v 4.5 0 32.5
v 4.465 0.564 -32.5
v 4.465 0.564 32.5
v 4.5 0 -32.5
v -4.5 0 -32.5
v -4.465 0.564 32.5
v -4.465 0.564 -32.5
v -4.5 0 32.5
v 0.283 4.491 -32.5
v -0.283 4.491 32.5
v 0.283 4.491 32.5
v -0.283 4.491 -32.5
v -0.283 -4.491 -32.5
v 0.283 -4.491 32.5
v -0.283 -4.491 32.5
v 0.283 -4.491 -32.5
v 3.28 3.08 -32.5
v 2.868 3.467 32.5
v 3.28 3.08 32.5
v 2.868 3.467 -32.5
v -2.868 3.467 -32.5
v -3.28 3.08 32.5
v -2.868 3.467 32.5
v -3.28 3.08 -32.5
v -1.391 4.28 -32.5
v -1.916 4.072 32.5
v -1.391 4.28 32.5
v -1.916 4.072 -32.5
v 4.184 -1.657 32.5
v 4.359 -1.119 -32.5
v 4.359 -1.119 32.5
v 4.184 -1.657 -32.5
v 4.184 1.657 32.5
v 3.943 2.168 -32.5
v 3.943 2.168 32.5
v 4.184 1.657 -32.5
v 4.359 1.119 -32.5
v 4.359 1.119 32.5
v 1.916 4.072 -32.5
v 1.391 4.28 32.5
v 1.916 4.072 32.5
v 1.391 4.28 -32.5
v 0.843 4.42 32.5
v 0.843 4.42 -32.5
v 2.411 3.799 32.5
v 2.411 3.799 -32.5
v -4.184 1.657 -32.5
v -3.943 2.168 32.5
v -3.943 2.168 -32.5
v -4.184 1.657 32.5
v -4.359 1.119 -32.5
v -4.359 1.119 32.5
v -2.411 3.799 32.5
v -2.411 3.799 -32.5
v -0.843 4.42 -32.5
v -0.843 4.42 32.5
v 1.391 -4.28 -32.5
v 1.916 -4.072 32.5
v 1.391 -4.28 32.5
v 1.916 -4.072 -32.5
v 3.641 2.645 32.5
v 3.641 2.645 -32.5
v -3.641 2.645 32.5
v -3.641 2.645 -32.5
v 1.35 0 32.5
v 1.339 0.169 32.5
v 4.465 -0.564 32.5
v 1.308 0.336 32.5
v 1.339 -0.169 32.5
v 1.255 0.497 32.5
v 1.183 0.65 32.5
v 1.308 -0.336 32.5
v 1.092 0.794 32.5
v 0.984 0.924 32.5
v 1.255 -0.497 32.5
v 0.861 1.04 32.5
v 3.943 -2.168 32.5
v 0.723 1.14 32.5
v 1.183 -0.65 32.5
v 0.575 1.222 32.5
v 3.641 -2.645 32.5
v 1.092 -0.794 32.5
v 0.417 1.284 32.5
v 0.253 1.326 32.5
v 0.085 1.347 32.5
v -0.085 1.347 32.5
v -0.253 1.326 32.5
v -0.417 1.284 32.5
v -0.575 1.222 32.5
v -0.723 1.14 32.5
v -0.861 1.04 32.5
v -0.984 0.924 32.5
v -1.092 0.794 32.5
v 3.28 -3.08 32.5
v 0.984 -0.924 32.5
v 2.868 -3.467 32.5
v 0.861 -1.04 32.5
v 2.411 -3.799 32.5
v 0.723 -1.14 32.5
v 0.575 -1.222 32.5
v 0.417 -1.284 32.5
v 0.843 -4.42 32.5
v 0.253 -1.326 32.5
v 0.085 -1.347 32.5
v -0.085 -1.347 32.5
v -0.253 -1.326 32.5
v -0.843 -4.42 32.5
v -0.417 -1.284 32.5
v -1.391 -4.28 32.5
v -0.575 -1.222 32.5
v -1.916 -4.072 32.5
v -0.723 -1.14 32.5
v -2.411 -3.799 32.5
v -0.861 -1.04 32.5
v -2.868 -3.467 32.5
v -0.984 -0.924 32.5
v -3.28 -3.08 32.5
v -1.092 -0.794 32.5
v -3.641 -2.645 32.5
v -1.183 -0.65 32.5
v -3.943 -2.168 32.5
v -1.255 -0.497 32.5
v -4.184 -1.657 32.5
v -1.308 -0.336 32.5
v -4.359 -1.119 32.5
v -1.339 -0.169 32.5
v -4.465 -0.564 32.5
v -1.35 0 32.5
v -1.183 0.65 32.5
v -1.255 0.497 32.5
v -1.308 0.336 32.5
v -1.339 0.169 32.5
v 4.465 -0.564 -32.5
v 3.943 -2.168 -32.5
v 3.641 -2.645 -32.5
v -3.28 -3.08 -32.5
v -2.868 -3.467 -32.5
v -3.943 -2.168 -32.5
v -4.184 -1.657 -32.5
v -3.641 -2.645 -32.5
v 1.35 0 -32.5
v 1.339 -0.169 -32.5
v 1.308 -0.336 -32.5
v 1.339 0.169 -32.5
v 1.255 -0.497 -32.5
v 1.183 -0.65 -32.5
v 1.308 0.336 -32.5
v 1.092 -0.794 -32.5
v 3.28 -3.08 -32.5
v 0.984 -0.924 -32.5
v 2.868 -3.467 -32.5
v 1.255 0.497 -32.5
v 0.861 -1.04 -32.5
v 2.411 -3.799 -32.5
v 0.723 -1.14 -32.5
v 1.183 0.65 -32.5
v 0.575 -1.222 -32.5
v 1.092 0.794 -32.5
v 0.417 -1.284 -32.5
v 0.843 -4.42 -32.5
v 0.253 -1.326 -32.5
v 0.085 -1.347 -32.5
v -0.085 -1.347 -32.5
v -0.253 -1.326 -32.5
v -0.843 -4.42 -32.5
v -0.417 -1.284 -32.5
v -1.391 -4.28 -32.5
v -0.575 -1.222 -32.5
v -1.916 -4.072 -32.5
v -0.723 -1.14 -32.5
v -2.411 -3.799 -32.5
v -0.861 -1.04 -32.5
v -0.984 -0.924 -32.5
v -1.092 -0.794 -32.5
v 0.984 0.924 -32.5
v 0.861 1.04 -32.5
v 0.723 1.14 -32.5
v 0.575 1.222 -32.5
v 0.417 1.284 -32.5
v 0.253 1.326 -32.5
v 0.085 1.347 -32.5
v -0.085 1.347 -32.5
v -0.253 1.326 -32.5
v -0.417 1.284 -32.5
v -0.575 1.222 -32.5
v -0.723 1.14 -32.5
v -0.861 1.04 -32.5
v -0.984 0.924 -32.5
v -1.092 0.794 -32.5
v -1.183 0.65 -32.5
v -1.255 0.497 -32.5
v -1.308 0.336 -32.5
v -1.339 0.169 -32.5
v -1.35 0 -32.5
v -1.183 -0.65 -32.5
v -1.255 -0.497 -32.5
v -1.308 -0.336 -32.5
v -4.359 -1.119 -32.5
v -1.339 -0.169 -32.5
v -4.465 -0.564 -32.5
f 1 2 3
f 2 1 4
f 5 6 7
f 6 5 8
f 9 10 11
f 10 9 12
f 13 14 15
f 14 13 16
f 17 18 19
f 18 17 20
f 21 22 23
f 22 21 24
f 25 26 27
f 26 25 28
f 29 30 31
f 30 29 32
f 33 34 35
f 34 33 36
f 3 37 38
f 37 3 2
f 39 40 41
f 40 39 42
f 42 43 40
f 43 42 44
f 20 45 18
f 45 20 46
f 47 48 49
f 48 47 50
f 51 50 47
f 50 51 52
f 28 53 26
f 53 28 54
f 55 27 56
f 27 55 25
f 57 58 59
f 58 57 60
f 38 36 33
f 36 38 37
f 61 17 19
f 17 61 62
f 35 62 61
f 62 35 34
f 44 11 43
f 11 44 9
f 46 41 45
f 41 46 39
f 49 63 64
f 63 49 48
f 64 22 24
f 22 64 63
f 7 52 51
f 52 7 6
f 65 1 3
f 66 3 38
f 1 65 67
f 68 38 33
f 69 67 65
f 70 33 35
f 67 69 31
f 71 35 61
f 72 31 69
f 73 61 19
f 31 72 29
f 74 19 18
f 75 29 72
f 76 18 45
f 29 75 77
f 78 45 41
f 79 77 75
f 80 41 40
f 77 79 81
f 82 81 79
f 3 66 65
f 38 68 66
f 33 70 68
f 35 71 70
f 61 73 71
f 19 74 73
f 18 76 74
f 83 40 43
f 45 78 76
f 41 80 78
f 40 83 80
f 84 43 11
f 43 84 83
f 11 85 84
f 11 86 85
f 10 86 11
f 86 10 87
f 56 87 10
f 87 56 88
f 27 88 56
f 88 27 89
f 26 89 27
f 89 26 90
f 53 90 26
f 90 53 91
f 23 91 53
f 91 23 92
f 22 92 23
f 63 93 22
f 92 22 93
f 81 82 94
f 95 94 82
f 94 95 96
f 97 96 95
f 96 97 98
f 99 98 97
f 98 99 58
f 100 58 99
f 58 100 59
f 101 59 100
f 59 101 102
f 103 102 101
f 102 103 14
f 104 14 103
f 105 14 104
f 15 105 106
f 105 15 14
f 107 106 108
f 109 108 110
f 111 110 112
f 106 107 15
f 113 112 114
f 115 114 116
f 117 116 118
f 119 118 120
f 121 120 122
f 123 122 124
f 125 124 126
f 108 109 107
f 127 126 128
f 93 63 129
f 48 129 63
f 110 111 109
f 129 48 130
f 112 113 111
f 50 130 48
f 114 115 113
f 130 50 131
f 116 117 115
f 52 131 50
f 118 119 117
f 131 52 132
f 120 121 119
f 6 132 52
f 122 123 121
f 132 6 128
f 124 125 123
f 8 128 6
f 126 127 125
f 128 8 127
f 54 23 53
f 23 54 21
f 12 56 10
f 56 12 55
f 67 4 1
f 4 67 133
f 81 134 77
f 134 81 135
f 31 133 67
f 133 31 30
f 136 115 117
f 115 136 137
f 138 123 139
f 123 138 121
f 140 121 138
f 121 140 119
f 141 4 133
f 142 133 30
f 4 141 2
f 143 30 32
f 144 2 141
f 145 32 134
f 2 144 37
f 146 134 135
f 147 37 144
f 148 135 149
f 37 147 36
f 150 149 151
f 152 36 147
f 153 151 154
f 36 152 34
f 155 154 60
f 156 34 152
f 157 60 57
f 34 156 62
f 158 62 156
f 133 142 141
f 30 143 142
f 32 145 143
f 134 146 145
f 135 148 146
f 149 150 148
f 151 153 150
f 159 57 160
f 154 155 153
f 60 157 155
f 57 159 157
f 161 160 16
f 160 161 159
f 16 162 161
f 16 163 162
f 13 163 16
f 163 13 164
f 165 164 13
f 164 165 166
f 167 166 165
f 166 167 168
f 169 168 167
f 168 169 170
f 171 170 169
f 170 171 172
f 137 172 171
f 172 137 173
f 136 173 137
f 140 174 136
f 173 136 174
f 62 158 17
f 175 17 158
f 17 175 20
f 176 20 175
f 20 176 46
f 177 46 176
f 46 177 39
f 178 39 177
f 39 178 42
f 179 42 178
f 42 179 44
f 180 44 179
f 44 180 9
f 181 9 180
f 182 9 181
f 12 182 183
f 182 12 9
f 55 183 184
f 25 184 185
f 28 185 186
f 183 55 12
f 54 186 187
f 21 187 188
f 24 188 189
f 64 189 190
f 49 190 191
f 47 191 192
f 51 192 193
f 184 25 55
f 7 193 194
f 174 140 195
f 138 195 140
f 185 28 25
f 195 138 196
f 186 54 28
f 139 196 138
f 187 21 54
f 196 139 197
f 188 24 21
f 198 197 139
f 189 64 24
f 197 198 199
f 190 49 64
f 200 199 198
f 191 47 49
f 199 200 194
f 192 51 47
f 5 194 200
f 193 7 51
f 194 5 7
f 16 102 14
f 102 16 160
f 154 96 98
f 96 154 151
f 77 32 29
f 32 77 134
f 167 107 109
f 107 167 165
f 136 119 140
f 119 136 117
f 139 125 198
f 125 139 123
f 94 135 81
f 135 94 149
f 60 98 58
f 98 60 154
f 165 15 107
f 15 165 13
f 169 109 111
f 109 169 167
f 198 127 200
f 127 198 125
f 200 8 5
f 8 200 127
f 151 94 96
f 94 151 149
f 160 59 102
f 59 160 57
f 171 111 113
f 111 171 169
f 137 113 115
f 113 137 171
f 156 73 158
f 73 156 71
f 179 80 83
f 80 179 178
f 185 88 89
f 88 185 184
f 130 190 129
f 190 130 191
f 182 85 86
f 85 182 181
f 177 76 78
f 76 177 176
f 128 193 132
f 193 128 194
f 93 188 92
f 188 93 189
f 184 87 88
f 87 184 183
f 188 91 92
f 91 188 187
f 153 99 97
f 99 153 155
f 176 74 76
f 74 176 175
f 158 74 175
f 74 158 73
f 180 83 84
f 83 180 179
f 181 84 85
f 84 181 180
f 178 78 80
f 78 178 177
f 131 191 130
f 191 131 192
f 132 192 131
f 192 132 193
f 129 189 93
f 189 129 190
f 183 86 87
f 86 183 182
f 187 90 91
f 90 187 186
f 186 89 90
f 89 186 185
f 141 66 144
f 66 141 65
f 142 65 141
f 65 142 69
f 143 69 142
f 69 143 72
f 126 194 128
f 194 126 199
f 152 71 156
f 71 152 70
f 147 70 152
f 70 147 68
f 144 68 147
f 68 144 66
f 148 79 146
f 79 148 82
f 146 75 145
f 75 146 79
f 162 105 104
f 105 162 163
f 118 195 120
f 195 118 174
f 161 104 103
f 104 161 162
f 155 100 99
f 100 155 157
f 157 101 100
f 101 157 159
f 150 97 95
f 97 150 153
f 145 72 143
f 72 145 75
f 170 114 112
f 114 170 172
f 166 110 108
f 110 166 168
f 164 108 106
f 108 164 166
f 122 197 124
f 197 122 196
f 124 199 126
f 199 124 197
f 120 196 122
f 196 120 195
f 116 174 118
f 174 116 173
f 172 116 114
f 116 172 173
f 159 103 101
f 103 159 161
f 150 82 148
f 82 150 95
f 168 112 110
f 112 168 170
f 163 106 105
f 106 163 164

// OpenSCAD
$fn = 50;


difference() {
	union() {
		translate(v = [0, 0, -32.5000000000]) {
			cylinder(h = 65, r = 4.5000000000);
		}
	}
	union() {
		translate(v = [0, 0, -100.0000000000]) {
			cylinder(h = 200, r = 1.3500000000);
		}
	}
}
